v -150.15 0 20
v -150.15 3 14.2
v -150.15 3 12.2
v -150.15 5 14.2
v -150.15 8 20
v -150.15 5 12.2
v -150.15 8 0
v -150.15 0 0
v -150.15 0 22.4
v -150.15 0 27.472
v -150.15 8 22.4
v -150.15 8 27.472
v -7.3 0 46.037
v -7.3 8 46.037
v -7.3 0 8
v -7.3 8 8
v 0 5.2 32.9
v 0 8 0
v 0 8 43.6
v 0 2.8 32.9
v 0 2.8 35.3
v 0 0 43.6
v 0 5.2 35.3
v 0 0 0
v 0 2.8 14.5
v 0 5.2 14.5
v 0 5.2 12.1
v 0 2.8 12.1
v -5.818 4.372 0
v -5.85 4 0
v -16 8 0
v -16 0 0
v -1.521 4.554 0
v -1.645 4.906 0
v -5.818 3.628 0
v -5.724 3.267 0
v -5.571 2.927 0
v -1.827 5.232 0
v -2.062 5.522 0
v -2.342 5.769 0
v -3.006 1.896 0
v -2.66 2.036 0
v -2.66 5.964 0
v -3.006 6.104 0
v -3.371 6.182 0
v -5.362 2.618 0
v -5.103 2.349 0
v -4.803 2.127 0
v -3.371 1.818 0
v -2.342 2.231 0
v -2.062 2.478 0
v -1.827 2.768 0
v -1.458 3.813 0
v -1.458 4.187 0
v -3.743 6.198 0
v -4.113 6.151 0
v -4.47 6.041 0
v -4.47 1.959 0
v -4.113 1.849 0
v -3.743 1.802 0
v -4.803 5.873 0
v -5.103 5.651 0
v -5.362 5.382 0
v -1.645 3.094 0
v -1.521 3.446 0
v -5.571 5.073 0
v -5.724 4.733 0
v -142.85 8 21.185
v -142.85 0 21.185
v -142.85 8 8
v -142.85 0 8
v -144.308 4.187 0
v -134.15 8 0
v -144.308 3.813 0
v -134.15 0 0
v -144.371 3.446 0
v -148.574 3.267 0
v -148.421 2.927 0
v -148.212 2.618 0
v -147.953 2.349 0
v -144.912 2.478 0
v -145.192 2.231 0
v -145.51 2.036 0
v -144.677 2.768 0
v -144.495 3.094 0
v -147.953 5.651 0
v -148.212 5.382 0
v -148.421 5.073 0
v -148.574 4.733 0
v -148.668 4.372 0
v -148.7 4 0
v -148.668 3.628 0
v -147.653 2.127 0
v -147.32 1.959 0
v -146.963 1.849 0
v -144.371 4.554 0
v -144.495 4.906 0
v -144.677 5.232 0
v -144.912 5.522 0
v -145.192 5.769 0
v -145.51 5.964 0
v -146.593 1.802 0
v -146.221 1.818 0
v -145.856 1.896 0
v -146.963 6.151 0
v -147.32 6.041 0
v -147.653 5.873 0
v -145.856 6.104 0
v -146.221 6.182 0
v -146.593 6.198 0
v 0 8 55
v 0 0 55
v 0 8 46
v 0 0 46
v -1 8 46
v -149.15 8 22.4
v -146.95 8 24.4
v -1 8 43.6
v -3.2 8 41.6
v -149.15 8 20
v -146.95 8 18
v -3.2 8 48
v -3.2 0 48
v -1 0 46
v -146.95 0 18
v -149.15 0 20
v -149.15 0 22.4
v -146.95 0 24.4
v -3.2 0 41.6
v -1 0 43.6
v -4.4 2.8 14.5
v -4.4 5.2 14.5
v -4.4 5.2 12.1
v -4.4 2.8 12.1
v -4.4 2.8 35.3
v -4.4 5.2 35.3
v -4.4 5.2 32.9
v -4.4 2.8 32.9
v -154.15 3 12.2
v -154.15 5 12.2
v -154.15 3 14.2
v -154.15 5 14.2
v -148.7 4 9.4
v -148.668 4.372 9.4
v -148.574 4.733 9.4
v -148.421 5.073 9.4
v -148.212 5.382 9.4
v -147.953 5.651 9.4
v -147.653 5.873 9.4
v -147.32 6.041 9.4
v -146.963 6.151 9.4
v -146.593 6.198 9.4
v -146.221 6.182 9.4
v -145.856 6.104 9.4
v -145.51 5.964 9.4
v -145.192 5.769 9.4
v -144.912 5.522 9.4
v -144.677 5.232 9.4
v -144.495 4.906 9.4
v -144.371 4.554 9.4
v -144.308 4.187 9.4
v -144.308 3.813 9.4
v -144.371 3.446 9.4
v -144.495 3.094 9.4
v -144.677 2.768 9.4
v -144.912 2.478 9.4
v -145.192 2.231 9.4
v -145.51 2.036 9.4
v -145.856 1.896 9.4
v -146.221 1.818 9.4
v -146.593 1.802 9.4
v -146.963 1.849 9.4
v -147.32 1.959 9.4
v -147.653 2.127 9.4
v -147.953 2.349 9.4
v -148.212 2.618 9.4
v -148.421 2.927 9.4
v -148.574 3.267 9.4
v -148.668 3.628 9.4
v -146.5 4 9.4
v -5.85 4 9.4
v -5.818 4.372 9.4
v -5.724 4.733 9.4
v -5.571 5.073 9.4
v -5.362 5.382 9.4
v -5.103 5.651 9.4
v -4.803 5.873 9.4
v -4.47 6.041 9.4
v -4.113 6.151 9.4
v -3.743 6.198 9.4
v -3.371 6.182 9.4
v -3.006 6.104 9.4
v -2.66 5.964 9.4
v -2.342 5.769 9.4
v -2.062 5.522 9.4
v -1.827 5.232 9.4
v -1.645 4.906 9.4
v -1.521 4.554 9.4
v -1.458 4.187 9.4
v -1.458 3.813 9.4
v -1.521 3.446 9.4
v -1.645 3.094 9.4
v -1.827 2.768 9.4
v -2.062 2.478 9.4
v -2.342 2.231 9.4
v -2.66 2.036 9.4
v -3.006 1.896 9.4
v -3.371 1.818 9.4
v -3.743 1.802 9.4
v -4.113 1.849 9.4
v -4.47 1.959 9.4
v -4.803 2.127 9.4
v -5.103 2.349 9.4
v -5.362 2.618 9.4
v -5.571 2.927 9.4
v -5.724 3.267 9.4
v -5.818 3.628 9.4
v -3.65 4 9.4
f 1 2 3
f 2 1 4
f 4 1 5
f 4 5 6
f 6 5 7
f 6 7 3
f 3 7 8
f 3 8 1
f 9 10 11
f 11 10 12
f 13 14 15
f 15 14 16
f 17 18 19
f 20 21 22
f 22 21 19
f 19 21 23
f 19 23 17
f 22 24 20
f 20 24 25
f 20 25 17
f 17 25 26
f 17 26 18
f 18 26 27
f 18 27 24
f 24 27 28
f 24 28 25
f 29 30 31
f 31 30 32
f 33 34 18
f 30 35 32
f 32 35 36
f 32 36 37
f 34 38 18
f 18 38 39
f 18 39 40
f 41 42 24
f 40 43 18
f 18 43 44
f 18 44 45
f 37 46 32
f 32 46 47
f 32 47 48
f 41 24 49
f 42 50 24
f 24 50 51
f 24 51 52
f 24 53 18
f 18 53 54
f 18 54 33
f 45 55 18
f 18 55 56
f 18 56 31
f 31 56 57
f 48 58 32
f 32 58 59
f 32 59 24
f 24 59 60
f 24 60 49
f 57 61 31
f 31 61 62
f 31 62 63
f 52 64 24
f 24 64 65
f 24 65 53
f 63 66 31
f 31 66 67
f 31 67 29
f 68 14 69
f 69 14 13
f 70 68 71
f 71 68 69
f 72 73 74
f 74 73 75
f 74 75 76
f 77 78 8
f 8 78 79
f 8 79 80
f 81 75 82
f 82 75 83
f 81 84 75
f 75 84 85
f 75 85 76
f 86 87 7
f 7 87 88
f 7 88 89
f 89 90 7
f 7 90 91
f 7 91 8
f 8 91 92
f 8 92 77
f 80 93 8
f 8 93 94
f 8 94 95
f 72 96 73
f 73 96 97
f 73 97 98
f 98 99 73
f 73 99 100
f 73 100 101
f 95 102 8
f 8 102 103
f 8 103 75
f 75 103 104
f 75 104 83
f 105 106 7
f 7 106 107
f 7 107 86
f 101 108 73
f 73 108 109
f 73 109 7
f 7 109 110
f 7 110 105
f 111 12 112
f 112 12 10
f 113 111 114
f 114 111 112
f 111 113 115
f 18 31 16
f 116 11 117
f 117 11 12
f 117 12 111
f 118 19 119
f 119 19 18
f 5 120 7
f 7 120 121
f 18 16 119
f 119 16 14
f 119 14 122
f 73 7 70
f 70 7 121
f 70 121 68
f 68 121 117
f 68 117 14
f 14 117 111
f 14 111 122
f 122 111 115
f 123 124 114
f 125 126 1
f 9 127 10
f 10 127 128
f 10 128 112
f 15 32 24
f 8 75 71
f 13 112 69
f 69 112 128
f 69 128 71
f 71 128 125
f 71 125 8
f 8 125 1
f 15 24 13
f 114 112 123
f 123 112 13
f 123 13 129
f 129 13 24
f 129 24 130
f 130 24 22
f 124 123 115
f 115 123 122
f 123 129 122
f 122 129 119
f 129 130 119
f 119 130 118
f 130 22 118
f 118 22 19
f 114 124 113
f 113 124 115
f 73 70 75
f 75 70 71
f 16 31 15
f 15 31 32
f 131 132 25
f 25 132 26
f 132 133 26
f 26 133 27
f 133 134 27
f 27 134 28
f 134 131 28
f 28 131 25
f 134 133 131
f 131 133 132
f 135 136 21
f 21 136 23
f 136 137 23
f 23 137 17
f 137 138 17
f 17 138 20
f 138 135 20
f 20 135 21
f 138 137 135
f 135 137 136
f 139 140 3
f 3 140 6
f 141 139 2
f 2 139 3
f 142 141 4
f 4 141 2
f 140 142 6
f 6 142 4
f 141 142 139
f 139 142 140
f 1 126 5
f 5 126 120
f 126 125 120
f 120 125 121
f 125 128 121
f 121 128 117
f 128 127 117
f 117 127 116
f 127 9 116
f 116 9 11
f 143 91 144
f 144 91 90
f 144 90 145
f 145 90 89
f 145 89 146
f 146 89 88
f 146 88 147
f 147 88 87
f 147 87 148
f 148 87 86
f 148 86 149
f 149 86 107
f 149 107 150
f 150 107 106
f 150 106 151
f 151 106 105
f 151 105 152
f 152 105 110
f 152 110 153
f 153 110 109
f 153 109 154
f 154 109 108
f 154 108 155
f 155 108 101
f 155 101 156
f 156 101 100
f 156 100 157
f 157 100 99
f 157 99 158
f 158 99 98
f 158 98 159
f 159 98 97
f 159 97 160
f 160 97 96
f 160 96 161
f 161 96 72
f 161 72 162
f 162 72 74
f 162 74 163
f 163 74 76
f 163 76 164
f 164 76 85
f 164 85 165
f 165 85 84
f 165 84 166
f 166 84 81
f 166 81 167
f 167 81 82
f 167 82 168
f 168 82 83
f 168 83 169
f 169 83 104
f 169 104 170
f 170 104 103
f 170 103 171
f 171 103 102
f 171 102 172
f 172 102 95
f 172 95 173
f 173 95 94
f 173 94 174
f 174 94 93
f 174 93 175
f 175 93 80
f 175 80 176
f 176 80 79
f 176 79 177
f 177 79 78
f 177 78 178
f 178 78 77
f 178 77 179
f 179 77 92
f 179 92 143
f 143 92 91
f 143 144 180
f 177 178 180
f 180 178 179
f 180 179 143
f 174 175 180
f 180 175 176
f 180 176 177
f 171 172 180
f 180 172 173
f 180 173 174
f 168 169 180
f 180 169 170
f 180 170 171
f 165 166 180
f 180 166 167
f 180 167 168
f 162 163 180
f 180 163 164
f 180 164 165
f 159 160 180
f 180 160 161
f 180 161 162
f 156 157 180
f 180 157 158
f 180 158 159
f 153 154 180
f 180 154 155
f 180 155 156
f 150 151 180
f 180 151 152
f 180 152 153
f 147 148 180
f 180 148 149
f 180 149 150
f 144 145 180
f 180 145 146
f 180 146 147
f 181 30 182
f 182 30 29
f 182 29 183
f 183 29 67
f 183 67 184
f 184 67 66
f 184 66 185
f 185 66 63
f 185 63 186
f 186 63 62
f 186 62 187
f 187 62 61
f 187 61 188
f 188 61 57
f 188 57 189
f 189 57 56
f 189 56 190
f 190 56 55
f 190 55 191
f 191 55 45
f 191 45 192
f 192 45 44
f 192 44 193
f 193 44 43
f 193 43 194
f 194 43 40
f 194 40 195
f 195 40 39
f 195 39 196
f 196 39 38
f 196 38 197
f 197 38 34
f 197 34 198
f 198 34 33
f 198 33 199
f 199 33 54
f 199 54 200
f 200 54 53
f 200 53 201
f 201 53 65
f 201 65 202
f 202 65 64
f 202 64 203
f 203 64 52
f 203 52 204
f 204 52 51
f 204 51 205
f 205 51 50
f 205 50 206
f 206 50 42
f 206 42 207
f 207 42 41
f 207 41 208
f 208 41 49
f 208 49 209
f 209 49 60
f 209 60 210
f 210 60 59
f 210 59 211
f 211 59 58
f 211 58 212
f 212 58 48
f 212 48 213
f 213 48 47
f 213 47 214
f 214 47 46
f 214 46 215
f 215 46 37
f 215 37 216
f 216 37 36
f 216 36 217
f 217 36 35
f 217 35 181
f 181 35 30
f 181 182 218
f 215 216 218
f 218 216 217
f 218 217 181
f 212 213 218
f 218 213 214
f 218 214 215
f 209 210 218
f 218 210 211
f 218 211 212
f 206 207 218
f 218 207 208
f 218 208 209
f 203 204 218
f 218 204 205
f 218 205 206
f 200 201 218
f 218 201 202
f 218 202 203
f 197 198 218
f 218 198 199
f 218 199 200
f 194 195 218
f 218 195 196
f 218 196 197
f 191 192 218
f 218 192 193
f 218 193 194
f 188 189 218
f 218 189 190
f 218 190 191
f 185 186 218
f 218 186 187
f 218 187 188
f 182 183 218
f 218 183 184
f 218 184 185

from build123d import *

# Parameters (mm, degrees)
P_IDAT_VYSUNUT_M1_DEPTH  = 8
ODEBRAT_VYSUNUT_M1_DEPTH = 161.106285011
SKICA6_W                 = 16
SKICA6_H                 = 8
P_IDAT_VYSUNUT_M3_DEPTH  = 8
ODEBRAT_VYSUNUT_M4_DEPTH = 161.106285011
SKICA4_W                 = 2.4
SKICA4_H                 = 2.4
ODEBRAT_VYSUNUT_M2_DEPTH = 4.4
SKICA5_W                 = 2
SKICA5_H                 = 2
P_IDAT_VYSUNUT_M2_DEPTH  = 4
ODEBRAT_VYSUNUT_M5_DEPTH = 164.863426365
SKICA12_R                = 2.2
ODEBRAT_VYSUNUT_M7_DEPTH = 9.4


with BuildPart() as part:
    # Skica1 → Přidat vysunutím1 (new body)
    with BuildSketch(Plane(origin=(0, 0, 0), x_dir=(1, 0, 0), z_dir=(0, 1, 0))):
        Polygon((0, 0), (0, -55), (-150.15, -27.472114866), (-150.15, 0), (-142.85, 0), (-142.85, -21.185463454), (-7.3, -46.036644473), (-7.3, 0), align=None)
    extrude(amount=P_IDAT_VYSUNUT_M1_DEPTH)

    # Skica3 → Odebrat vysunutím1 (cut, through all)
    with BuildSketch(Plane(origin=(0, 8, 0), x_dir=(1, 0, 0), z_dir=(0, 1, 0))):
        Polygon((-1, -43.6), (-3.2, -41.6), (-3.2, -48), (-1, -46), (0, -46), (0, -43.6), align=None)
    extrude(amount=-ODEBRAT_VYSUNUT_M1_DEPTH, mode=Mode.SUBTRACT)

    # Skica6 → Přidat vysunutím3 (add)
    with BuildSketch(Plane(origin=(0, 8, 0), x_dir=(1, 0, 0), z_dir=(0, 1, 0))):
        with Locations((-142.15, -4)):
            Rectangle(SKICA6_W, SKICA6_H)
        with Locations((-8, -4)):
            Rectangle(SKICA6_W, SKICA6_H)
    extrude(amount=-P_IDAT_VYSUNUT_M3_DEPTH)

    # Skica9 → Odebrat vysunutím4 (cut, through all)
    with BuildSketch(Plane.XZ):
        Polygon((-142.85, 8), (-134.15, 8), (-134.15, 0), align=None)
        Polygon((-16, 8), (-7.3, 8), (-16, 0), align=None)
    extrude(amount=-ODEBRAT_VYSUNUT_M4_DEPTH, mode=Mode.SUBTRACT)

    # Skica4 → Odebrat vysunutím2 (cut)
    with BuildSketch(Plane(origin=(0, 0, 0), x_dir=(0, 0, -1), z_dir=(1, 0, 0))):
        with Locations((-34.1, 4)):
            Rectangle(SKICA4_W, SKICA4_H)
        with Locations((-13.3, 4)):
            Rectangle(SKICA4_W, SKICA4_H)
    extrude(amount=-ODEBRAT_VYSUNUT_M2_DEPTH, mode=Mode.SUBTRACT)

    # Skica5 → Přidat vysunutím2 (add)
    with BuildSketch(Plane.ZY.offset(150.15)):
        with Locations((13.2, 4)):
            Rectangle(SKICA5_W, SKICA5_H)
    extrude(amount=P_IDAT_VYSUNUT_M2_DEPTH)

    # Skica10 → Odebrat vysunutím5 (cut, through all)
    with BuildSketch(Plane(origin=(0, 8, 0), x_dir=(1, 0, 0), z_dir=(0, 1, 0))):
        Polygon((-150.15, -22.4), (-149.15, -22.4), (-146.95, -24.4), (-146.95, -18), (-149.15, -20), (-150.15, -20), align=None)
    extrude(amount=-ODEBRAT_VYSUNUT_M5_DEPTH, mode=Mode.SUBTRACT)

    # Skica12 → Odebrat vysunutím7 (cut)
    with BuildSketch(Plane(origin=(0, 0, 0), x_dir=(-1, 0, 0), z_dir=(0, 0, -1))):
        with Locations((3.65, 4)):
            Circle(SKICA12_R)
        with Locations((146.5, 4)):
            Circle(SKICA12_R)
    extrude(amount=-ODEBRAT_VYSUNUT_M7_DEPTH, mode=Mode.SUBTRACT)


solid = part.part
